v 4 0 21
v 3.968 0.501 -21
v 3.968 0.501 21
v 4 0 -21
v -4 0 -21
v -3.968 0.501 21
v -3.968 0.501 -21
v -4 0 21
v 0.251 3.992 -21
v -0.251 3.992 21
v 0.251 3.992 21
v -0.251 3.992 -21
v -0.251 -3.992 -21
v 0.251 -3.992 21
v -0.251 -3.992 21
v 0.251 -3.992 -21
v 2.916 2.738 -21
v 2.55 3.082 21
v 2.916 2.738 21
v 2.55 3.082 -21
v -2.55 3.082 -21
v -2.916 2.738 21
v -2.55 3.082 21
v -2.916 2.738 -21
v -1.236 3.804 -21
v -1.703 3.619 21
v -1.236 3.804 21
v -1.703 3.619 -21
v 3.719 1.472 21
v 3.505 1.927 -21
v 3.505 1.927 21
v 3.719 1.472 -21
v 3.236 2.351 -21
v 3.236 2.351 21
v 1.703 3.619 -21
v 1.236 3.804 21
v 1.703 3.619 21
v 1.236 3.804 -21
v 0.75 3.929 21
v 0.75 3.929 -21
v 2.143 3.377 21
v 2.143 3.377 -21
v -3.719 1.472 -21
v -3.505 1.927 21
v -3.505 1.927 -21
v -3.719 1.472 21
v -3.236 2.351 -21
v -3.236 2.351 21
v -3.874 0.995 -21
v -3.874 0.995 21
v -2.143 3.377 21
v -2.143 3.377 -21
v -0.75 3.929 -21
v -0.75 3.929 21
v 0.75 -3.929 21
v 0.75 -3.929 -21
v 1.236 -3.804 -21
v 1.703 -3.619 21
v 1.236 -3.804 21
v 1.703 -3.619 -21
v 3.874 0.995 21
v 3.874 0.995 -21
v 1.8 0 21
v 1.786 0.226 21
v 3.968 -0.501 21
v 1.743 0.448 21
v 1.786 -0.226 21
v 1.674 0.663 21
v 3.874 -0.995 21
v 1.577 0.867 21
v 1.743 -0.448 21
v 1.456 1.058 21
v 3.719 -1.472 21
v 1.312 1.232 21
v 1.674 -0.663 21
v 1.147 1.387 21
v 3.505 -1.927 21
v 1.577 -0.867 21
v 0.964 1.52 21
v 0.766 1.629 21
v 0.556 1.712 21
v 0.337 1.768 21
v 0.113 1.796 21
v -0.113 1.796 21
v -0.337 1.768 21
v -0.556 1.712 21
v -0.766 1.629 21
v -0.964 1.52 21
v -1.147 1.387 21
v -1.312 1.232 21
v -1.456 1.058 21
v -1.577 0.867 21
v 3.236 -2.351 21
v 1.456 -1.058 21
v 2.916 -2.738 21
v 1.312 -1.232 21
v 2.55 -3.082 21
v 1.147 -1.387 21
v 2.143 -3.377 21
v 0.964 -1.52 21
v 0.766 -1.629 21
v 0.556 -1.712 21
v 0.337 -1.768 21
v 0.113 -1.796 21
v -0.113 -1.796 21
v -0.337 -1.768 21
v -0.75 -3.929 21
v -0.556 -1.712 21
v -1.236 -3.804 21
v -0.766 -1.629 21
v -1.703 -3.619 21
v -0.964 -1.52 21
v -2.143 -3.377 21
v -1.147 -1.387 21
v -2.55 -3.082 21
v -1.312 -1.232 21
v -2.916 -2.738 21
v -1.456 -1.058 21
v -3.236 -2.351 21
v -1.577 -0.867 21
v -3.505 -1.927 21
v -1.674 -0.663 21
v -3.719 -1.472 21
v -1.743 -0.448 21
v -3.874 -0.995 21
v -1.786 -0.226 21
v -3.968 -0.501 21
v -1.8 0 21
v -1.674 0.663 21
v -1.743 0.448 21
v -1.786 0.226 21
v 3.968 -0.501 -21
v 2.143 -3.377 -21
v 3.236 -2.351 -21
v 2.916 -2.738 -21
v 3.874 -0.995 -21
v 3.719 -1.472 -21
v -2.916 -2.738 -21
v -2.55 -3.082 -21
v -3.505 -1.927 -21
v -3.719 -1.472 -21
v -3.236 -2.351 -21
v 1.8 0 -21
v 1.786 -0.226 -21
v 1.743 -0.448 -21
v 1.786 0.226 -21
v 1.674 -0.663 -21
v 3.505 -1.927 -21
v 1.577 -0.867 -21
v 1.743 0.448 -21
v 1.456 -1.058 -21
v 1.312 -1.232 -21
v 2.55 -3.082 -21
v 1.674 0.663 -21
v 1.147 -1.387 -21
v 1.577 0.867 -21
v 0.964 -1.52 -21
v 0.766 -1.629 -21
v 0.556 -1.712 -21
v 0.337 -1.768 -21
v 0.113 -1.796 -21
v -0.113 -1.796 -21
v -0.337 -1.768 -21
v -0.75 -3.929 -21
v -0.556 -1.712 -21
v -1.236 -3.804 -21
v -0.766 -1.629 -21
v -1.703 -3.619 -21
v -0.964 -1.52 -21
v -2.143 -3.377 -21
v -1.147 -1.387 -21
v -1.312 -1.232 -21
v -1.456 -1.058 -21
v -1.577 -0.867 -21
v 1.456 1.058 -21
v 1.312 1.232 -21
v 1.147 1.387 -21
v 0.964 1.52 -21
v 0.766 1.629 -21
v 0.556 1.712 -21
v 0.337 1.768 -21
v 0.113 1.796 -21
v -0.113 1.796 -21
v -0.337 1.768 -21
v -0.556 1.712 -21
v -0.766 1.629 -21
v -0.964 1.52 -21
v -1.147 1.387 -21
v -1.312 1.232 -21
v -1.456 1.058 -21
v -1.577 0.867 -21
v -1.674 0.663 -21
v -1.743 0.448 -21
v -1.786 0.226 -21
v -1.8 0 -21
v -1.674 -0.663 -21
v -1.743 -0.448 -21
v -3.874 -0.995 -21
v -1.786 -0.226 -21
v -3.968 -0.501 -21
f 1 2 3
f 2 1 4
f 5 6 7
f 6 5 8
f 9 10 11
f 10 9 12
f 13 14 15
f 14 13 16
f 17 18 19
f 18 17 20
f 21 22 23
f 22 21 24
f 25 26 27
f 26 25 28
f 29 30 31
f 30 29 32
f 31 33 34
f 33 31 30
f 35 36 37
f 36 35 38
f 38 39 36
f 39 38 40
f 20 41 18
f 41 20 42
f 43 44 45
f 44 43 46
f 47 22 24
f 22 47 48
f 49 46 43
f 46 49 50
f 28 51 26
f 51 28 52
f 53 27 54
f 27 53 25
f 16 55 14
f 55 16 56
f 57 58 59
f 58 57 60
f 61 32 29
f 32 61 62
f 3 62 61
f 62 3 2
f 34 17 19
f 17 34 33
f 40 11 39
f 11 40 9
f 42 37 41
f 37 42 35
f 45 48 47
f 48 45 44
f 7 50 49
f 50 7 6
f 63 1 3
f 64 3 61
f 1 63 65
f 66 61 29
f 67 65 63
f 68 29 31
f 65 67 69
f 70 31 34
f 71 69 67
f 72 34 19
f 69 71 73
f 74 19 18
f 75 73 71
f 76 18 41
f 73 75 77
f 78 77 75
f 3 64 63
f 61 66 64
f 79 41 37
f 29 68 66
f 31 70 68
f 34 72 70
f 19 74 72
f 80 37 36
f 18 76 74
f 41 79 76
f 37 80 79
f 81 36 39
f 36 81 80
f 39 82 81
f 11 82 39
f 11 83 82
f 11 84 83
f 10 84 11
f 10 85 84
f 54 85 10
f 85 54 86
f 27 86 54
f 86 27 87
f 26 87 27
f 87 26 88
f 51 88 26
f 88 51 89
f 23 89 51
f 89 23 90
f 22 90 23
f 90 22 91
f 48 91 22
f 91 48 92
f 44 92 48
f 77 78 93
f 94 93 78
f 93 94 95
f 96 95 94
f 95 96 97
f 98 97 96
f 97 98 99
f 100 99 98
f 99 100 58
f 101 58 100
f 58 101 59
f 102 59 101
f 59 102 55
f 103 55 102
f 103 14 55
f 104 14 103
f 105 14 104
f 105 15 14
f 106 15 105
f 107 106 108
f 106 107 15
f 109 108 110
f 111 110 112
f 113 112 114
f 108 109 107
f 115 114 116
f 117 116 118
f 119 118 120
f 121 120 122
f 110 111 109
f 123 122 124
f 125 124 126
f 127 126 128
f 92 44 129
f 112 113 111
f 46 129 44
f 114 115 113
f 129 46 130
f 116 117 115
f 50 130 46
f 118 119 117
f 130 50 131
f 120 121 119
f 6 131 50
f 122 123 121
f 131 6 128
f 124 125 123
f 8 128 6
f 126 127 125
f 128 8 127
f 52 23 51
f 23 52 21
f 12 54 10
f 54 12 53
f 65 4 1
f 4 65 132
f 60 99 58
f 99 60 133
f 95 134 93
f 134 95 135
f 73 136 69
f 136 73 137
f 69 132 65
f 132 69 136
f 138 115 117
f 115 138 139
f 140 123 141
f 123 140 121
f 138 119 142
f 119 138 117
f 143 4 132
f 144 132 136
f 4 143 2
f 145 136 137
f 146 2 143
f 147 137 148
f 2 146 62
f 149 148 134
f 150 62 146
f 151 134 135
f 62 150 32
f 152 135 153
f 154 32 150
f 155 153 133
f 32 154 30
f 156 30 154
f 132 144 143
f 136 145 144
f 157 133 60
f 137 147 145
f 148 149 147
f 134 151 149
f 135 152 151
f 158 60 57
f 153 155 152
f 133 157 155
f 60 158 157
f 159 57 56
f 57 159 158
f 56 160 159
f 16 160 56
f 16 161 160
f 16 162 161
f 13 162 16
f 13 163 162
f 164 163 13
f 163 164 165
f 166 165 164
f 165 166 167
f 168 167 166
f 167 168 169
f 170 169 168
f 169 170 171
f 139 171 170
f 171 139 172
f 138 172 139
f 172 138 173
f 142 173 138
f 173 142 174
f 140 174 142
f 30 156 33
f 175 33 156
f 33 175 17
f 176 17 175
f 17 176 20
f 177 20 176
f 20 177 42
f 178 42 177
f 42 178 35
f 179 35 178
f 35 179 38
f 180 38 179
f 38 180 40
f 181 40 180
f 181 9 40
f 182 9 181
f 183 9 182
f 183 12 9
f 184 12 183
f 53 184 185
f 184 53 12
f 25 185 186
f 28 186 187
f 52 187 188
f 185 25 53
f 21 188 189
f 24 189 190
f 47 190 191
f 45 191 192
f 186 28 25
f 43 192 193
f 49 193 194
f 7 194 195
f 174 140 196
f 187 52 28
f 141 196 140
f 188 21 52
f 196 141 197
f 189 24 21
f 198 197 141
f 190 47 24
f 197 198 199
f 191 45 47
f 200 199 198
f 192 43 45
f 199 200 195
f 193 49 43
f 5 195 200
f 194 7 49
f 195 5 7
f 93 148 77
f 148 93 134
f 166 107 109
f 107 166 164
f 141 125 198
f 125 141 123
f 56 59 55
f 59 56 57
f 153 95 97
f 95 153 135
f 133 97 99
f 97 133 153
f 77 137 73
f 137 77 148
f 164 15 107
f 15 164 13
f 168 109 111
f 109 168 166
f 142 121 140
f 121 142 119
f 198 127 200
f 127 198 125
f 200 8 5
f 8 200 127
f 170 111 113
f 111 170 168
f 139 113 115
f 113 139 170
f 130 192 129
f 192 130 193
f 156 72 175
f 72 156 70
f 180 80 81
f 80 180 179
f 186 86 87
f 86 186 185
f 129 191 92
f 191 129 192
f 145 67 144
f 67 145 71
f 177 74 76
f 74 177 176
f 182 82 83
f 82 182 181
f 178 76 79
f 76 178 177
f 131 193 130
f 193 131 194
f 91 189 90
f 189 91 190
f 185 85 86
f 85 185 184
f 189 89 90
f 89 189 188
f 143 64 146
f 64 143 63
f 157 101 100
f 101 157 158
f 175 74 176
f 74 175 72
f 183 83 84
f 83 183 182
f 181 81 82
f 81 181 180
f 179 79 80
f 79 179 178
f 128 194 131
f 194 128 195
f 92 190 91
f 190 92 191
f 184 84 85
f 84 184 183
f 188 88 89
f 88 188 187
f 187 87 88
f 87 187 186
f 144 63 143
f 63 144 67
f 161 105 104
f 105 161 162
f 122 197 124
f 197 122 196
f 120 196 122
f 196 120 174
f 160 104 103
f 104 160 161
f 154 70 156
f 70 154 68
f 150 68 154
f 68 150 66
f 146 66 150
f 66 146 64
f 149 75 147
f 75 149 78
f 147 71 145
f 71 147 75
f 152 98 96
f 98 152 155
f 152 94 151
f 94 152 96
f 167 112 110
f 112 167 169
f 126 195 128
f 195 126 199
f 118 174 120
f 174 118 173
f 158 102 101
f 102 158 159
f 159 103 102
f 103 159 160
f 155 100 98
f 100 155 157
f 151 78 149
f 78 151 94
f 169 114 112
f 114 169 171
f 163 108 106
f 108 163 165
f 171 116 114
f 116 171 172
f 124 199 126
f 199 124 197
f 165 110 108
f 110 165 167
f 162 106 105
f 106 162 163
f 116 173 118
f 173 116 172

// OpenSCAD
$fn = 50;


difference() {
	union() {
		translate(v = [0, 0, -21.0000000000]) {
			cylinder(h = 42, r = 4.0000000000);
		}
	}
	union() {
		translate(v = [0, 0, -100.0000000000]) {
			cylinder(h = 200, r = 1.8000000000);
		}
	}
}
